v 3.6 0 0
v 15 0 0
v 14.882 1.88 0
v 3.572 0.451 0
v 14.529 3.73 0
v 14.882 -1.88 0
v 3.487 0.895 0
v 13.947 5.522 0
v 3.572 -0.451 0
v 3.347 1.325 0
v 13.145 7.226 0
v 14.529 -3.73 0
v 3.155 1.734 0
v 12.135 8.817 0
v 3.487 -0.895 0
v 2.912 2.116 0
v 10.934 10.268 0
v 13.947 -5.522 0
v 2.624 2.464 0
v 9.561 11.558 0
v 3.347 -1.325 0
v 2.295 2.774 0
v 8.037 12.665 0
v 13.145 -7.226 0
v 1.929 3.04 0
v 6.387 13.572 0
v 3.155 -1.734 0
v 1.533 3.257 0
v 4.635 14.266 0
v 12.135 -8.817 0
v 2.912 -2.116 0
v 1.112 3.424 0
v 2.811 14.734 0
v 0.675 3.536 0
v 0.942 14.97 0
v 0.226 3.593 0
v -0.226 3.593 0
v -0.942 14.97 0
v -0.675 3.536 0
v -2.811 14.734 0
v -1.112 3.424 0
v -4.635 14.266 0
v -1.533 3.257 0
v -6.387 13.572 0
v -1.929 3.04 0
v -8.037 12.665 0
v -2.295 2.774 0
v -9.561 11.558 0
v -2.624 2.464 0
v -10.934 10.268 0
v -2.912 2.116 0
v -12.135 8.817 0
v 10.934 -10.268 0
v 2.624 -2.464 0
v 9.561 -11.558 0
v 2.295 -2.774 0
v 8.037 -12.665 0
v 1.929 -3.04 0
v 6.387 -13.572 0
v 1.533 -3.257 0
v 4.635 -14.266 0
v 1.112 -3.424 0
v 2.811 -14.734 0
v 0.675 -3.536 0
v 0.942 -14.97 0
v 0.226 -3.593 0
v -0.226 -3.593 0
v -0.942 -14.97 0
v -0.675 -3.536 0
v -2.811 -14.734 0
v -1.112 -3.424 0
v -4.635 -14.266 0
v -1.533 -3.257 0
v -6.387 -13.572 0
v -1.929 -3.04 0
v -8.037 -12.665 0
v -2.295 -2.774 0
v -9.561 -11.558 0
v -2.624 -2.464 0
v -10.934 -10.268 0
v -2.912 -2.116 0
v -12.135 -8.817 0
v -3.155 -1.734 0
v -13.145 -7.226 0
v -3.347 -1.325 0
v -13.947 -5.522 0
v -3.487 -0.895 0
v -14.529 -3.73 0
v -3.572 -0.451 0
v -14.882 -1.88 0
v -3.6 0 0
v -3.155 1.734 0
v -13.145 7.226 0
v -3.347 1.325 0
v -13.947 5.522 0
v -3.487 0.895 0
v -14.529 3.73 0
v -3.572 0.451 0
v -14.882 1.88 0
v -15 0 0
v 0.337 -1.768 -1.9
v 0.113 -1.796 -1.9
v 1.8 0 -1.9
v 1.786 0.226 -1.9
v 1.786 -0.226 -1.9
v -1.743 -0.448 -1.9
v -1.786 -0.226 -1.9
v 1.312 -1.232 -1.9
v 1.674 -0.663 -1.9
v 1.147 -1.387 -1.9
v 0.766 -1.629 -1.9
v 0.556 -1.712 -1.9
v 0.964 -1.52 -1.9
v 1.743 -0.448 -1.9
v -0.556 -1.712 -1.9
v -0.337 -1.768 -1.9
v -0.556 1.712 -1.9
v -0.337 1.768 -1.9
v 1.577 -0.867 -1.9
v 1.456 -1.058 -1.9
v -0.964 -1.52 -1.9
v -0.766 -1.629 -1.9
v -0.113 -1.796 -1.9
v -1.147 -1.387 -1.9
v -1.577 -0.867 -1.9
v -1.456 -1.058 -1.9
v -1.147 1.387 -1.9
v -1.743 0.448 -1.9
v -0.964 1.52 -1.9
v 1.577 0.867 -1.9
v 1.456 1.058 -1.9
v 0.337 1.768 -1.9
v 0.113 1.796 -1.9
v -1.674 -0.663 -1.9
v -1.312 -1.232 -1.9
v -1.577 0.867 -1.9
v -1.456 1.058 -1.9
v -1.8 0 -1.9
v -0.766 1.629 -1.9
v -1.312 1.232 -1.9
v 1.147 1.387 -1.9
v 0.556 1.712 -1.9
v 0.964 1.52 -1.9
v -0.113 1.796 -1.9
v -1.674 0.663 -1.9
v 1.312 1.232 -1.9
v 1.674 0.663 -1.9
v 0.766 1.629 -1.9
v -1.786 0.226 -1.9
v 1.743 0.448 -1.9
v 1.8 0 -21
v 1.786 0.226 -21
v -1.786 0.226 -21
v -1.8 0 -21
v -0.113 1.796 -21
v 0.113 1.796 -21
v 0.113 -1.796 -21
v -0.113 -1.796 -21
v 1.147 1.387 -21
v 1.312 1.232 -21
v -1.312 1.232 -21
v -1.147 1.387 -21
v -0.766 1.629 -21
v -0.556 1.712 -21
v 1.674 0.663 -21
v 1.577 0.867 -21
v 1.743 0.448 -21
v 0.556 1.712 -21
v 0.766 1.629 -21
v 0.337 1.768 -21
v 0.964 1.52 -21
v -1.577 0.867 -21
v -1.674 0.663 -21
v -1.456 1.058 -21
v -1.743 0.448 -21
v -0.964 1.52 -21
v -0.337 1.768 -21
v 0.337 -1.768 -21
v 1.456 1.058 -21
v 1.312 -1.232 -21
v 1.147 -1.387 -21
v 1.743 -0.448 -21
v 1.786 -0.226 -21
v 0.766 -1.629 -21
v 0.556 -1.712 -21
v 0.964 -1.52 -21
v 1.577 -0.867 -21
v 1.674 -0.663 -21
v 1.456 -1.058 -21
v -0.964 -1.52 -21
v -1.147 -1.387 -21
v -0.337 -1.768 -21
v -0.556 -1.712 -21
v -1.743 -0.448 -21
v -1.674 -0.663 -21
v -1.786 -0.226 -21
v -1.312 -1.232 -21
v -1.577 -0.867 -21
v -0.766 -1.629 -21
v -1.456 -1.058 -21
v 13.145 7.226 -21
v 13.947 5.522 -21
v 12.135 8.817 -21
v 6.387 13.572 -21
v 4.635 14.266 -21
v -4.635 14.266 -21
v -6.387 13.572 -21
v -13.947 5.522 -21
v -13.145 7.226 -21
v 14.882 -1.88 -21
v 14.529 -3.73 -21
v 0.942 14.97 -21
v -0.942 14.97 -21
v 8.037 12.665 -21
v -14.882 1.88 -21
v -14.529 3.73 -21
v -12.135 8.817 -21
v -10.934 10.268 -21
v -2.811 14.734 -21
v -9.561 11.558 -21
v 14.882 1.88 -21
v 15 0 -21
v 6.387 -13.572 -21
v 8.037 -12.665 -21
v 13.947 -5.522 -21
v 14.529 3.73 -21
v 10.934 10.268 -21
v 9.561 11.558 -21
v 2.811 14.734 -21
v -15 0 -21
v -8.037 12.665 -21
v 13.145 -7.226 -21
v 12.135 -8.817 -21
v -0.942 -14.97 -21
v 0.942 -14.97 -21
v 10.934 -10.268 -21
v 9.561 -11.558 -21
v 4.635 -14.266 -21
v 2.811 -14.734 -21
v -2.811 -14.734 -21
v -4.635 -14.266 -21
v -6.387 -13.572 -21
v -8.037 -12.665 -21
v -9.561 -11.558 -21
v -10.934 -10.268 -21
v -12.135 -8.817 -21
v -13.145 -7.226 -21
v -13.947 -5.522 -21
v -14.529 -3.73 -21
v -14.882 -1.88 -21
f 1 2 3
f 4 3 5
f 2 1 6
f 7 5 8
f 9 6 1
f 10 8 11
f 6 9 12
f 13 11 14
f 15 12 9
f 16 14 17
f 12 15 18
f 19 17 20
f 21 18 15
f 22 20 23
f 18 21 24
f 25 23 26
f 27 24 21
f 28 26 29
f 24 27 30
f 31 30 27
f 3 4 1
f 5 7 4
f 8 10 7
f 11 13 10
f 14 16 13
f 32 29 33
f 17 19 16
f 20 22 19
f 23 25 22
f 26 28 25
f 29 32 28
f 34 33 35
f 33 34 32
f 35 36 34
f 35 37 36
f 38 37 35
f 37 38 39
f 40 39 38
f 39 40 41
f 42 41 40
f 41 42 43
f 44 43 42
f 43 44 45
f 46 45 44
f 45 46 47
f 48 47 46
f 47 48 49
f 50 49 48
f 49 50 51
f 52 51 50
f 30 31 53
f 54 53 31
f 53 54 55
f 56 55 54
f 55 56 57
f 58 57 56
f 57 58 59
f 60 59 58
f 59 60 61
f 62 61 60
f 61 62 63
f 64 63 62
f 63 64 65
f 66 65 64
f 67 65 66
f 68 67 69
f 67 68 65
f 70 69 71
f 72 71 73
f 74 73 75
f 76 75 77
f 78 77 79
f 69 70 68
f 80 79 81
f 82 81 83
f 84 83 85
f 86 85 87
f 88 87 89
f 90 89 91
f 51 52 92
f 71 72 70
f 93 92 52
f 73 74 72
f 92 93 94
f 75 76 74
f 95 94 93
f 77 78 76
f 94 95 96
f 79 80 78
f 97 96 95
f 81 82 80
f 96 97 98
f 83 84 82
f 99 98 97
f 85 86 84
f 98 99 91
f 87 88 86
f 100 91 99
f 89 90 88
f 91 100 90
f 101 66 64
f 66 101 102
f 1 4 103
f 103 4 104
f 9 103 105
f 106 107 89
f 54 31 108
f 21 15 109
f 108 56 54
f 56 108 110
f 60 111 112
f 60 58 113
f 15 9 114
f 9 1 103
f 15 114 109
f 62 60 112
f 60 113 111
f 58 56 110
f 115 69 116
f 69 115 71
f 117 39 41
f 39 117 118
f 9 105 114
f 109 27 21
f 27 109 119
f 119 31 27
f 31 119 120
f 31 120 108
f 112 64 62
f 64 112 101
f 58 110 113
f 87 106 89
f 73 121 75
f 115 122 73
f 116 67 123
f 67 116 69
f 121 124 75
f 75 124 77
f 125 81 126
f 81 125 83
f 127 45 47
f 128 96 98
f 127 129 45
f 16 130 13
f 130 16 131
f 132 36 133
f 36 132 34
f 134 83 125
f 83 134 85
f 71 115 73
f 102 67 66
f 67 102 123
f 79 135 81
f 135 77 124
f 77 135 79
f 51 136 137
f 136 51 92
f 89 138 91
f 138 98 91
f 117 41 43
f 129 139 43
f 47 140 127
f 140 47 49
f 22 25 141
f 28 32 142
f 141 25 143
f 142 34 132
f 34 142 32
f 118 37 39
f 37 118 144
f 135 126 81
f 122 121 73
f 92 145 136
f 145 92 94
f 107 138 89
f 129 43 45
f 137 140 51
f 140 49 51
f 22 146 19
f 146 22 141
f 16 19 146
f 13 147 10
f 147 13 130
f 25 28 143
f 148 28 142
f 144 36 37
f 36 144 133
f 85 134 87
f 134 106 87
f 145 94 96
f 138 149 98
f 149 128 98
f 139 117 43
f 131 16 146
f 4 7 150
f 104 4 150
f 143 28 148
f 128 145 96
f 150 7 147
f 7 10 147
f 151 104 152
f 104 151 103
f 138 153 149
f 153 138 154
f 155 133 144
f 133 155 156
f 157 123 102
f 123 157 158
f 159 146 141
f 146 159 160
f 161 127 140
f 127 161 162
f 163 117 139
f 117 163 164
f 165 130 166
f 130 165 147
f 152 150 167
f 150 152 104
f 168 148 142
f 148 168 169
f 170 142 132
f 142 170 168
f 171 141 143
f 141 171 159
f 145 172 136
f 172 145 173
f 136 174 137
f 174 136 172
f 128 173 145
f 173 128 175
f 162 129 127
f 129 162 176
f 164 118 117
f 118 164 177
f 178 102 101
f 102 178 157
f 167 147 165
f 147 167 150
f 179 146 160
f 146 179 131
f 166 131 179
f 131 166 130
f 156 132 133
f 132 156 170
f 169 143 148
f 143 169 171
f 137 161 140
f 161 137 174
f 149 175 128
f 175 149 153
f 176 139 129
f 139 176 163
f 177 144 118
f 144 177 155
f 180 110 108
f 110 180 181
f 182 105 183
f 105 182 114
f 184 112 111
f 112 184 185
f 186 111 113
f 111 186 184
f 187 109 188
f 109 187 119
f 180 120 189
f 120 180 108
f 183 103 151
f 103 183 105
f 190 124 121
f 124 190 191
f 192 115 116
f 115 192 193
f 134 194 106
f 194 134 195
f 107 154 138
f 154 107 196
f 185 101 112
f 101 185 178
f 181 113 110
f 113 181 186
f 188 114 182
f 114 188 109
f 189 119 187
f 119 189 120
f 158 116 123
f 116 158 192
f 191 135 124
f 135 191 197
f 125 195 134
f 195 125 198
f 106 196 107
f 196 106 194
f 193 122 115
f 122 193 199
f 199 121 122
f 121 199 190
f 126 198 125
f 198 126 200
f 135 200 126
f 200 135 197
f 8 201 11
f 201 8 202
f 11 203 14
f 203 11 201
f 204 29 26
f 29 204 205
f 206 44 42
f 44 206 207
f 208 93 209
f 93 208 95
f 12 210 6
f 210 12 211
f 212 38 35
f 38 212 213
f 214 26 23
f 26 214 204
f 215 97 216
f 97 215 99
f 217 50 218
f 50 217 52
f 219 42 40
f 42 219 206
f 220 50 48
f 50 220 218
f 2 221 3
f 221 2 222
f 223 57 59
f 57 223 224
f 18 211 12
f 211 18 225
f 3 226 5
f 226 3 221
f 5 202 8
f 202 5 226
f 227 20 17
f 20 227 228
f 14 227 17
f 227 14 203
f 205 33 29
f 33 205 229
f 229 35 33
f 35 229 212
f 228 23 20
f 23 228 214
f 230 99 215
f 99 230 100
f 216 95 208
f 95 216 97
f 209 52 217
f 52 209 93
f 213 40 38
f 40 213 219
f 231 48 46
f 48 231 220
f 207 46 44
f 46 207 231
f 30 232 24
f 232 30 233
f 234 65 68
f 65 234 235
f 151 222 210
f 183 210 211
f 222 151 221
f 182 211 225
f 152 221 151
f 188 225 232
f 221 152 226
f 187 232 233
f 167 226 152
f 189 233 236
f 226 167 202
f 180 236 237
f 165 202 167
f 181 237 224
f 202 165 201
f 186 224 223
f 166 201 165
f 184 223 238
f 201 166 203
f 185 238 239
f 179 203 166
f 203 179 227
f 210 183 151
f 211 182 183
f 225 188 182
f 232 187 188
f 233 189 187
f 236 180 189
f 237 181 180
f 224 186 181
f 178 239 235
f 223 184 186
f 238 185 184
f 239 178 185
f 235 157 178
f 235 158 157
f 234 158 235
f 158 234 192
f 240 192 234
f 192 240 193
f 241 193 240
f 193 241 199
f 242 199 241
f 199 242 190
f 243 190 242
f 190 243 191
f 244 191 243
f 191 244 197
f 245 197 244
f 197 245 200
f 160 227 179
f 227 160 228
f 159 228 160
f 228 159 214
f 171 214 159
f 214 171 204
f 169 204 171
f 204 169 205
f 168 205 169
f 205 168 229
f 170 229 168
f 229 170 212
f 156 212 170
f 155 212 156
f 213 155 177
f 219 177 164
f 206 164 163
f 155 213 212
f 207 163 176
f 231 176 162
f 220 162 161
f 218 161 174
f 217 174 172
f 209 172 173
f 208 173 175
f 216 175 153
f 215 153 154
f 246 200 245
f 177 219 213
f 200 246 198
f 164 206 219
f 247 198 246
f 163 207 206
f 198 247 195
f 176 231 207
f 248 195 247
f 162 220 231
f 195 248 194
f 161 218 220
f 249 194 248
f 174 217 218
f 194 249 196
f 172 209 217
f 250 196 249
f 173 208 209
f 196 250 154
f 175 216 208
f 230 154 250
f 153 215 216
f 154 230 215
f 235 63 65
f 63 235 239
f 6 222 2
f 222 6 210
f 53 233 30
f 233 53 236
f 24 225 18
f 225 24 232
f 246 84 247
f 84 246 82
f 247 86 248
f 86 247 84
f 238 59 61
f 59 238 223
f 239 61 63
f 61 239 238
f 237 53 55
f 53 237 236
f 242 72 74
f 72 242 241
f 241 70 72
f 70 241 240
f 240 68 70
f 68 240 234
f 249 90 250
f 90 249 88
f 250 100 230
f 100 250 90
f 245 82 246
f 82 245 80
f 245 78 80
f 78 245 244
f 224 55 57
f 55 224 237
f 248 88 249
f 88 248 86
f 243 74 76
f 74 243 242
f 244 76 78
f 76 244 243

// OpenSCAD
$fn = 50;

difference() {
	union() {
		translate(v = [0, 0, -21.0]) {
			cylinder(h = 21, r = 15.0);
		}
	}
	union() {
		translate(v = [0, 0, 0]) {
			rotate(a = [0, 0, 0]) {
				difference() {
					union() {
						translate(v = [0, 0, -24.0]) {
							cylinder(h = 24, r = 1.5);
						}
						translate(v = [0, 0, -1.9]) {
							cylinder(h = 1.9, r1 = 1.8, r2 = 3.6);
						}
						translate(v = [0, 0, -24.0]) {
							cylinder(h = 24, r = 1.8);
						}
						translate(v = [0, 0, -24.0]) {
							cylinder(h = 24, r = 1.5);
						}
					}
					union();
				}
			}
		}
	}
}
